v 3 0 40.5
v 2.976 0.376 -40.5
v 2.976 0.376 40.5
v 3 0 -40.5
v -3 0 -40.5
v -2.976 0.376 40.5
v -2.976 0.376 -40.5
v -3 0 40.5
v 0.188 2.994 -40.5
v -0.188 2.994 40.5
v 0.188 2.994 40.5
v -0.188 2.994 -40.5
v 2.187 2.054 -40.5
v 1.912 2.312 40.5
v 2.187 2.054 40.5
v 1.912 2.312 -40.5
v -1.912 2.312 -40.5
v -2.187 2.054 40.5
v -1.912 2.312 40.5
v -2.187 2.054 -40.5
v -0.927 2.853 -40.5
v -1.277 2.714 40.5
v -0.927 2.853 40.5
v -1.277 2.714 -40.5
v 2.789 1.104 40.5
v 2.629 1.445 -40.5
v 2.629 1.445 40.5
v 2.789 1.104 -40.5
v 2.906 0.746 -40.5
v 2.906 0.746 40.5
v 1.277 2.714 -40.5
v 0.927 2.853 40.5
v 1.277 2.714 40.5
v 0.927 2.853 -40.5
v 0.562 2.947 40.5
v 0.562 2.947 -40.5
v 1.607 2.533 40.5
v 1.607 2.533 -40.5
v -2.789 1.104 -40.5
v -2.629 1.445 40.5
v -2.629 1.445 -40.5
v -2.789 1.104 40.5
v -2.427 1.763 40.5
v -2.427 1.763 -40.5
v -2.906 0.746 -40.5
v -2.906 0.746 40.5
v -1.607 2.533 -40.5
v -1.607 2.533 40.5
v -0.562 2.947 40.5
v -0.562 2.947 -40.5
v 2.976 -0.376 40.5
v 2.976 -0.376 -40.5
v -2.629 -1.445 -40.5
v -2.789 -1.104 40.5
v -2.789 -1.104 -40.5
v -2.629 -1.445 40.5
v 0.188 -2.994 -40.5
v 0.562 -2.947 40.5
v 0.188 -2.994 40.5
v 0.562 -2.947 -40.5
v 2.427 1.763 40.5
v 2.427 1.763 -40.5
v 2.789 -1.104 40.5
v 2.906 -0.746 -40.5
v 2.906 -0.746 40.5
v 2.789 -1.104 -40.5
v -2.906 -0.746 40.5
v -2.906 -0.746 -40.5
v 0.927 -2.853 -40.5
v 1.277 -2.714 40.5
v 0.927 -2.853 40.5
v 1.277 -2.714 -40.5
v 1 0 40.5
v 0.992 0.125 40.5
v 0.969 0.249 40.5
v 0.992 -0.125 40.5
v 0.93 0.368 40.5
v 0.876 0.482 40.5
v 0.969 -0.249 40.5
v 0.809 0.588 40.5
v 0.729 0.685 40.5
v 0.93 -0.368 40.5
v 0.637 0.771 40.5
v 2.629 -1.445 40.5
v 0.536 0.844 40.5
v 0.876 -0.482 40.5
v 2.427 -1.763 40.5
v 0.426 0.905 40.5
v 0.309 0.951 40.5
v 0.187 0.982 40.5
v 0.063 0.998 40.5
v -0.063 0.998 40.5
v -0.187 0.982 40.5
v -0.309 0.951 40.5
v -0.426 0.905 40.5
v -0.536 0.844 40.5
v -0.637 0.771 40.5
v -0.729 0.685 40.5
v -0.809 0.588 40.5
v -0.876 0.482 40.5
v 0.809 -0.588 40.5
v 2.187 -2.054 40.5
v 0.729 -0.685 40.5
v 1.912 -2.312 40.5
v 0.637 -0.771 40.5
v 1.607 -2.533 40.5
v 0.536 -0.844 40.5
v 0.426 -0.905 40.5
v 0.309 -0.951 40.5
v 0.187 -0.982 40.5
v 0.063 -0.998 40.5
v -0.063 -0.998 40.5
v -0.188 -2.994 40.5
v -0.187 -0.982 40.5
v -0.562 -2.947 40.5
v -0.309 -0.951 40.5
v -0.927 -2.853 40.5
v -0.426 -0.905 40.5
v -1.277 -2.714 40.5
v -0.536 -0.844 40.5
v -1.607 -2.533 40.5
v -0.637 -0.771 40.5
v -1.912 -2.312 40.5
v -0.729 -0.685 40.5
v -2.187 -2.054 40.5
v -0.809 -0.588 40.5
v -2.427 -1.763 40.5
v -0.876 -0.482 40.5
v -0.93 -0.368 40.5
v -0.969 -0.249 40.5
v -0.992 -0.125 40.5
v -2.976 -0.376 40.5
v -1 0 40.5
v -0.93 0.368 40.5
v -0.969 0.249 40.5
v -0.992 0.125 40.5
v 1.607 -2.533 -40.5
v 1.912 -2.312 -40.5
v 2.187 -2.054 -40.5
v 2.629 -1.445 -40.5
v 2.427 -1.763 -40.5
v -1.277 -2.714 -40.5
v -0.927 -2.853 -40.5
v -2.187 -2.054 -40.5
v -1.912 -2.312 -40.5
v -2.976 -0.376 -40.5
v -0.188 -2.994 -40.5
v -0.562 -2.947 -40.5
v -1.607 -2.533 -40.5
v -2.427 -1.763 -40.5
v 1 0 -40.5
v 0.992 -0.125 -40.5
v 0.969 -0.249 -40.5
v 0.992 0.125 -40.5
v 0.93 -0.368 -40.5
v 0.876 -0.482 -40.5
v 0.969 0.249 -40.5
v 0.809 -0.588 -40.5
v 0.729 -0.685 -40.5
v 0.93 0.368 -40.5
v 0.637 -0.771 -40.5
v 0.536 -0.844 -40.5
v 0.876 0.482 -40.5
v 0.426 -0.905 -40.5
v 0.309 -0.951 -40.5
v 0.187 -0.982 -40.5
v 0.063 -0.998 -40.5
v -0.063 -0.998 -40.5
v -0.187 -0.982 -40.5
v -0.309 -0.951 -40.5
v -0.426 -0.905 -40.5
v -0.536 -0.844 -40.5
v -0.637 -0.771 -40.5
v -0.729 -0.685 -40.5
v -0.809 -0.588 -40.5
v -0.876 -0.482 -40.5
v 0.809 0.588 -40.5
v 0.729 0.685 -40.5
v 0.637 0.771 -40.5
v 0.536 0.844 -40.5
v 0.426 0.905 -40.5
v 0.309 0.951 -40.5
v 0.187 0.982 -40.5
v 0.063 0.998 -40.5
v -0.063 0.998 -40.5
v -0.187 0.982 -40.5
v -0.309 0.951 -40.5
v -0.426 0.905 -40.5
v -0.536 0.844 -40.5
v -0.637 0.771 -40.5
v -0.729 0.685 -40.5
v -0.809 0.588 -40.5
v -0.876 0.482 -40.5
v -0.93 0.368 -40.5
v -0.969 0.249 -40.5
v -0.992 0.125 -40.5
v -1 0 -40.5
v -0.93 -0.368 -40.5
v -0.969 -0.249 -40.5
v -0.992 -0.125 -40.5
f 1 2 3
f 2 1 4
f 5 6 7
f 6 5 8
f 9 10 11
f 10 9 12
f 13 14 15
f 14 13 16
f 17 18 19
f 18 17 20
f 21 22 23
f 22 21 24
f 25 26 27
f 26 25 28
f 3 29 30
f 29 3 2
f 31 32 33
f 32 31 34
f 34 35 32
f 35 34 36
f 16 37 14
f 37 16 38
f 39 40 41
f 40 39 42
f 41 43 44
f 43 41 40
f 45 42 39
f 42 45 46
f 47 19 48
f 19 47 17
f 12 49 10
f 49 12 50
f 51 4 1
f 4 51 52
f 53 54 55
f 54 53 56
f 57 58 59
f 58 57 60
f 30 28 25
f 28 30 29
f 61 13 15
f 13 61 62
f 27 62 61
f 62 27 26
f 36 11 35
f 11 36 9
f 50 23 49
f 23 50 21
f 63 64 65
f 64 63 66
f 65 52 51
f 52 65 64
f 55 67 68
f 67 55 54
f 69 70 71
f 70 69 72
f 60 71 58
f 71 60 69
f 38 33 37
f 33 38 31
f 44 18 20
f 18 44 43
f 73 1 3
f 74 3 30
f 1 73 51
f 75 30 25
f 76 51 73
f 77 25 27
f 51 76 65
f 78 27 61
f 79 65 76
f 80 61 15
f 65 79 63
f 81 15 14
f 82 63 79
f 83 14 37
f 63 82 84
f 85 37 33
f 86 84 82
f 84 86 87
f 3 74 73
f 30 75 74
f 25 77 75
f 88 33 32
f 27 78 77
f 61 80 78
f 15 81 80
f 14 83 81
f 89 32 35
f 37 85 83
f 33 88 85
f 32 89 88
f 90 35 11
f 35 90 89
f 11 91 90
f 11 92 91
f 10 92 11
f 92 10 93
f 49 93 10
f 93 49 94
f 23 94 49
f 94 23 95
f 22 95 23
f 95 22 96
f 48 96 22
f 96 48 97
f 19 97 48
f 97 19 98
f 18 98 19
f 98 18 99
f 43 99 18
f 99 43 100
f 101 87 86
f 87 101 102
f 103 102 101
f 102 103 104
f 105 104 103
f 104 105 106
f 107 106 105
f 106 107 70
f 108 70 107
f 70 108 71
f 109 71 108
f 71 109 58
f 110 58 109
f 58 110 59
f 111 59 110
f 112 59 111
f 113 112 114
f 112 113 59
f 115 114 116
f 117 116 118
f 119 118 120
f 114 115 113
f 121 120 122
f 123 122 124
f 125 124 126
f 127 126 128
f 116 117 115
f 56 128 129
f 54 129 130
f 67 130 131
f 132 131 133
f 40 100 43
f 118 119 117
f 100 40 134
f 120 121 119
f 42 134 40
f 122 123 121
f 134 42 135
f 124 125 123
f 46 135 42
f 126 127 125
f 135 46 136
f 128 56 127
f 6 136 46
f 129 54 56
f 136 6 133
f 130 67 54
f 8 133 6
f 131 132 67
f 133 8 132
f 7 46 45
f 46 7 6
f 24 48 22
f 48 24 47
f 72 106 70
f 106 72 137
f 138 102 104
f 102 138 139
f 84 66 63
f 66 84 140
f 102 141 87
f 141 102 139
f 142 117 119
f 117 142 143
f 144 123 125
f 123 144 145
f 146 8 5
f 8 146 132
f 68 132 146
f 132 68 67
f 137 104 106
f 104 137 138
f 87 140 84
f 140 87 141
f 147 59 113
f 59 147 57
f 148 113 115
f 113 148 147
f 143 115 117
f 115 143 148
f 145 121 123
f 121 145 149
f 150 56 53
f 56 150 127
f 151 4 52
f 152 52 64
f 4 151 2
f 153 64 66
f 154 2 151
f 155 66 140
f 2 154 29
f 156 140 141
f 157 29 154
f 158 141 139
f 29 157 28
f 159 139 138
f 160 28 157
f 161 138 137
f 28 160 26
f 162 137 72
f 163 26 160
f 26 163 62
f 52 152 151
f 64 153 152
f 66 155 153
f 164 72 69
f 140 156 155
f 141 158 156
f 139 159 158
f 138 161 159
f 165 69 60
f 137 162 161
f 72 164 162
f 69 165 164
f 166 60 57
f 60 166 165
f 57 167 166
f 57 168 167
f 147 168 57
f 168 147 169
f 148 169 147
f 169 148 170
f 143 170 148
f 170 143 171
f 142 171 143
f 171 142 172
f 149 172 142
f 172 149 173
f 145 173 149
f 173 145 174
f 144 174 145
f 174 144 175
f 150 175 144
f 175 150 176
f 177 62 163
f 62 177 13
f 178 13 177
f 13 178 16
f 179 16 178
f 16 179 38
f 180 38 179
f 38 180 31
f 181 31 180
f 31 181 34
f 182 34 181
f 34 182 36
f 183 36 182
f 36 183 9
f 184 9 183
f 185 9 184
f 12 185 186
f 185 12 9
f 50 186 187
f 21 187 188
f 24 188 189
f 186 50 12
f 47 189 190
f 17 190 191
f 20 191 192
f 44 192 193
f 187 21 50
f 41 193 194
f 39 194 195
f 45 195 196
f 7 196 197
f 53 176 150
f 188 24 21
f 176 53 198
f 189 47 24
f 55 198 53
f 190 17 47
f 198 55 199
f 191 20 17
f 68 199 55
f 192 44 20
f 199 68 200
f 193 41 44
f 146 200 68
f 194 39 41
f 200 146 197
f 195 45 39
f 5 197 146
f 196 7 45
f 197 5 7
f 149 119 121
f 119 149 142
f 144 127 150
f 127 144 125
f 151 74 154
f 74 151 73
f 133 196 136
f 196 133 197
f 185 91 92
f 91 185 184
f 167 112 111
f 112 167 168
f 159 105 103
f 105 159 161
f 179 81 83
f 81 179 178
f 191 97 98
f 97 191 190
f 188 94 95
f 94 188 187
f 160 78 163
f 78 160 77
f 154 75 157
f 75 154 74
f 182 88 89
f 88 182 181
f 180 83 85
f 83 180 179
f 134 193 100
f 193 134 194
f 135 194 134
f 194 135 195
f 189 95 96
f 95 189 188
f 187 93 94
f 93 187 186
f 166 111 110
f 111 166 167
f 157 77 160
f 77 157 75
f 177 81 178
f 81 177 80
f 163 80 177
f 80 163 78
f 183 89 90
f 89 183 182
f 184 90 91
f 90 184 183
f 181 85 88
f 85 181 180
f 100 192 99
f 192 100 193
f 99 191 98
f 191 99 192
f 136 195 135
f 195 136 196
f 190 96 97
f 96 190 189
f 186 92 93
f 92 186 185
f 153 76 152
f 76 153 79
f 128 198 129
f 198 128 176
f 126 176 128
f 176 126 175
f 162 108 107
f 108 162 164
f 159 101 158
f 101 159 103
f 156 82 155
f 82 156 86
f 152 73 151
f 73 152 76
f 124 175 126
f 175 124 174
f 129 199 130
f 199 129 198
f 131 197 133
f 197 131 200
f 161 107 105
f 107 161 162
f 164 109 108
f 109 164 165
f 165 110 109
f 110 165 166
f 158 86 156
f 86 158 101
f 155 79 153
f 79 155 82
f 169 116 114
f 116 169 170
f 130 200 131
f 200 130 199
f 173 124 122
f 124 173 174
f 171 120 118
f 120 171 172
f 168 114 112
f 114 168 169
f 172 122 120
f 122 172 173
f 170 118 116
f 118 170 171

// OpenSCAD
$fn = 50;


difference() {
	union() {
		translate(v = [0, 0, -40.5000000000]) {
			cylinder(h = 81, r = 3.0000000000);
		}
	}
	union() {
		translate(v = [0, 0, -100.0000000000]) {
			cylinder(h = 200, r = 1.0000000000);
		}
	}
}
